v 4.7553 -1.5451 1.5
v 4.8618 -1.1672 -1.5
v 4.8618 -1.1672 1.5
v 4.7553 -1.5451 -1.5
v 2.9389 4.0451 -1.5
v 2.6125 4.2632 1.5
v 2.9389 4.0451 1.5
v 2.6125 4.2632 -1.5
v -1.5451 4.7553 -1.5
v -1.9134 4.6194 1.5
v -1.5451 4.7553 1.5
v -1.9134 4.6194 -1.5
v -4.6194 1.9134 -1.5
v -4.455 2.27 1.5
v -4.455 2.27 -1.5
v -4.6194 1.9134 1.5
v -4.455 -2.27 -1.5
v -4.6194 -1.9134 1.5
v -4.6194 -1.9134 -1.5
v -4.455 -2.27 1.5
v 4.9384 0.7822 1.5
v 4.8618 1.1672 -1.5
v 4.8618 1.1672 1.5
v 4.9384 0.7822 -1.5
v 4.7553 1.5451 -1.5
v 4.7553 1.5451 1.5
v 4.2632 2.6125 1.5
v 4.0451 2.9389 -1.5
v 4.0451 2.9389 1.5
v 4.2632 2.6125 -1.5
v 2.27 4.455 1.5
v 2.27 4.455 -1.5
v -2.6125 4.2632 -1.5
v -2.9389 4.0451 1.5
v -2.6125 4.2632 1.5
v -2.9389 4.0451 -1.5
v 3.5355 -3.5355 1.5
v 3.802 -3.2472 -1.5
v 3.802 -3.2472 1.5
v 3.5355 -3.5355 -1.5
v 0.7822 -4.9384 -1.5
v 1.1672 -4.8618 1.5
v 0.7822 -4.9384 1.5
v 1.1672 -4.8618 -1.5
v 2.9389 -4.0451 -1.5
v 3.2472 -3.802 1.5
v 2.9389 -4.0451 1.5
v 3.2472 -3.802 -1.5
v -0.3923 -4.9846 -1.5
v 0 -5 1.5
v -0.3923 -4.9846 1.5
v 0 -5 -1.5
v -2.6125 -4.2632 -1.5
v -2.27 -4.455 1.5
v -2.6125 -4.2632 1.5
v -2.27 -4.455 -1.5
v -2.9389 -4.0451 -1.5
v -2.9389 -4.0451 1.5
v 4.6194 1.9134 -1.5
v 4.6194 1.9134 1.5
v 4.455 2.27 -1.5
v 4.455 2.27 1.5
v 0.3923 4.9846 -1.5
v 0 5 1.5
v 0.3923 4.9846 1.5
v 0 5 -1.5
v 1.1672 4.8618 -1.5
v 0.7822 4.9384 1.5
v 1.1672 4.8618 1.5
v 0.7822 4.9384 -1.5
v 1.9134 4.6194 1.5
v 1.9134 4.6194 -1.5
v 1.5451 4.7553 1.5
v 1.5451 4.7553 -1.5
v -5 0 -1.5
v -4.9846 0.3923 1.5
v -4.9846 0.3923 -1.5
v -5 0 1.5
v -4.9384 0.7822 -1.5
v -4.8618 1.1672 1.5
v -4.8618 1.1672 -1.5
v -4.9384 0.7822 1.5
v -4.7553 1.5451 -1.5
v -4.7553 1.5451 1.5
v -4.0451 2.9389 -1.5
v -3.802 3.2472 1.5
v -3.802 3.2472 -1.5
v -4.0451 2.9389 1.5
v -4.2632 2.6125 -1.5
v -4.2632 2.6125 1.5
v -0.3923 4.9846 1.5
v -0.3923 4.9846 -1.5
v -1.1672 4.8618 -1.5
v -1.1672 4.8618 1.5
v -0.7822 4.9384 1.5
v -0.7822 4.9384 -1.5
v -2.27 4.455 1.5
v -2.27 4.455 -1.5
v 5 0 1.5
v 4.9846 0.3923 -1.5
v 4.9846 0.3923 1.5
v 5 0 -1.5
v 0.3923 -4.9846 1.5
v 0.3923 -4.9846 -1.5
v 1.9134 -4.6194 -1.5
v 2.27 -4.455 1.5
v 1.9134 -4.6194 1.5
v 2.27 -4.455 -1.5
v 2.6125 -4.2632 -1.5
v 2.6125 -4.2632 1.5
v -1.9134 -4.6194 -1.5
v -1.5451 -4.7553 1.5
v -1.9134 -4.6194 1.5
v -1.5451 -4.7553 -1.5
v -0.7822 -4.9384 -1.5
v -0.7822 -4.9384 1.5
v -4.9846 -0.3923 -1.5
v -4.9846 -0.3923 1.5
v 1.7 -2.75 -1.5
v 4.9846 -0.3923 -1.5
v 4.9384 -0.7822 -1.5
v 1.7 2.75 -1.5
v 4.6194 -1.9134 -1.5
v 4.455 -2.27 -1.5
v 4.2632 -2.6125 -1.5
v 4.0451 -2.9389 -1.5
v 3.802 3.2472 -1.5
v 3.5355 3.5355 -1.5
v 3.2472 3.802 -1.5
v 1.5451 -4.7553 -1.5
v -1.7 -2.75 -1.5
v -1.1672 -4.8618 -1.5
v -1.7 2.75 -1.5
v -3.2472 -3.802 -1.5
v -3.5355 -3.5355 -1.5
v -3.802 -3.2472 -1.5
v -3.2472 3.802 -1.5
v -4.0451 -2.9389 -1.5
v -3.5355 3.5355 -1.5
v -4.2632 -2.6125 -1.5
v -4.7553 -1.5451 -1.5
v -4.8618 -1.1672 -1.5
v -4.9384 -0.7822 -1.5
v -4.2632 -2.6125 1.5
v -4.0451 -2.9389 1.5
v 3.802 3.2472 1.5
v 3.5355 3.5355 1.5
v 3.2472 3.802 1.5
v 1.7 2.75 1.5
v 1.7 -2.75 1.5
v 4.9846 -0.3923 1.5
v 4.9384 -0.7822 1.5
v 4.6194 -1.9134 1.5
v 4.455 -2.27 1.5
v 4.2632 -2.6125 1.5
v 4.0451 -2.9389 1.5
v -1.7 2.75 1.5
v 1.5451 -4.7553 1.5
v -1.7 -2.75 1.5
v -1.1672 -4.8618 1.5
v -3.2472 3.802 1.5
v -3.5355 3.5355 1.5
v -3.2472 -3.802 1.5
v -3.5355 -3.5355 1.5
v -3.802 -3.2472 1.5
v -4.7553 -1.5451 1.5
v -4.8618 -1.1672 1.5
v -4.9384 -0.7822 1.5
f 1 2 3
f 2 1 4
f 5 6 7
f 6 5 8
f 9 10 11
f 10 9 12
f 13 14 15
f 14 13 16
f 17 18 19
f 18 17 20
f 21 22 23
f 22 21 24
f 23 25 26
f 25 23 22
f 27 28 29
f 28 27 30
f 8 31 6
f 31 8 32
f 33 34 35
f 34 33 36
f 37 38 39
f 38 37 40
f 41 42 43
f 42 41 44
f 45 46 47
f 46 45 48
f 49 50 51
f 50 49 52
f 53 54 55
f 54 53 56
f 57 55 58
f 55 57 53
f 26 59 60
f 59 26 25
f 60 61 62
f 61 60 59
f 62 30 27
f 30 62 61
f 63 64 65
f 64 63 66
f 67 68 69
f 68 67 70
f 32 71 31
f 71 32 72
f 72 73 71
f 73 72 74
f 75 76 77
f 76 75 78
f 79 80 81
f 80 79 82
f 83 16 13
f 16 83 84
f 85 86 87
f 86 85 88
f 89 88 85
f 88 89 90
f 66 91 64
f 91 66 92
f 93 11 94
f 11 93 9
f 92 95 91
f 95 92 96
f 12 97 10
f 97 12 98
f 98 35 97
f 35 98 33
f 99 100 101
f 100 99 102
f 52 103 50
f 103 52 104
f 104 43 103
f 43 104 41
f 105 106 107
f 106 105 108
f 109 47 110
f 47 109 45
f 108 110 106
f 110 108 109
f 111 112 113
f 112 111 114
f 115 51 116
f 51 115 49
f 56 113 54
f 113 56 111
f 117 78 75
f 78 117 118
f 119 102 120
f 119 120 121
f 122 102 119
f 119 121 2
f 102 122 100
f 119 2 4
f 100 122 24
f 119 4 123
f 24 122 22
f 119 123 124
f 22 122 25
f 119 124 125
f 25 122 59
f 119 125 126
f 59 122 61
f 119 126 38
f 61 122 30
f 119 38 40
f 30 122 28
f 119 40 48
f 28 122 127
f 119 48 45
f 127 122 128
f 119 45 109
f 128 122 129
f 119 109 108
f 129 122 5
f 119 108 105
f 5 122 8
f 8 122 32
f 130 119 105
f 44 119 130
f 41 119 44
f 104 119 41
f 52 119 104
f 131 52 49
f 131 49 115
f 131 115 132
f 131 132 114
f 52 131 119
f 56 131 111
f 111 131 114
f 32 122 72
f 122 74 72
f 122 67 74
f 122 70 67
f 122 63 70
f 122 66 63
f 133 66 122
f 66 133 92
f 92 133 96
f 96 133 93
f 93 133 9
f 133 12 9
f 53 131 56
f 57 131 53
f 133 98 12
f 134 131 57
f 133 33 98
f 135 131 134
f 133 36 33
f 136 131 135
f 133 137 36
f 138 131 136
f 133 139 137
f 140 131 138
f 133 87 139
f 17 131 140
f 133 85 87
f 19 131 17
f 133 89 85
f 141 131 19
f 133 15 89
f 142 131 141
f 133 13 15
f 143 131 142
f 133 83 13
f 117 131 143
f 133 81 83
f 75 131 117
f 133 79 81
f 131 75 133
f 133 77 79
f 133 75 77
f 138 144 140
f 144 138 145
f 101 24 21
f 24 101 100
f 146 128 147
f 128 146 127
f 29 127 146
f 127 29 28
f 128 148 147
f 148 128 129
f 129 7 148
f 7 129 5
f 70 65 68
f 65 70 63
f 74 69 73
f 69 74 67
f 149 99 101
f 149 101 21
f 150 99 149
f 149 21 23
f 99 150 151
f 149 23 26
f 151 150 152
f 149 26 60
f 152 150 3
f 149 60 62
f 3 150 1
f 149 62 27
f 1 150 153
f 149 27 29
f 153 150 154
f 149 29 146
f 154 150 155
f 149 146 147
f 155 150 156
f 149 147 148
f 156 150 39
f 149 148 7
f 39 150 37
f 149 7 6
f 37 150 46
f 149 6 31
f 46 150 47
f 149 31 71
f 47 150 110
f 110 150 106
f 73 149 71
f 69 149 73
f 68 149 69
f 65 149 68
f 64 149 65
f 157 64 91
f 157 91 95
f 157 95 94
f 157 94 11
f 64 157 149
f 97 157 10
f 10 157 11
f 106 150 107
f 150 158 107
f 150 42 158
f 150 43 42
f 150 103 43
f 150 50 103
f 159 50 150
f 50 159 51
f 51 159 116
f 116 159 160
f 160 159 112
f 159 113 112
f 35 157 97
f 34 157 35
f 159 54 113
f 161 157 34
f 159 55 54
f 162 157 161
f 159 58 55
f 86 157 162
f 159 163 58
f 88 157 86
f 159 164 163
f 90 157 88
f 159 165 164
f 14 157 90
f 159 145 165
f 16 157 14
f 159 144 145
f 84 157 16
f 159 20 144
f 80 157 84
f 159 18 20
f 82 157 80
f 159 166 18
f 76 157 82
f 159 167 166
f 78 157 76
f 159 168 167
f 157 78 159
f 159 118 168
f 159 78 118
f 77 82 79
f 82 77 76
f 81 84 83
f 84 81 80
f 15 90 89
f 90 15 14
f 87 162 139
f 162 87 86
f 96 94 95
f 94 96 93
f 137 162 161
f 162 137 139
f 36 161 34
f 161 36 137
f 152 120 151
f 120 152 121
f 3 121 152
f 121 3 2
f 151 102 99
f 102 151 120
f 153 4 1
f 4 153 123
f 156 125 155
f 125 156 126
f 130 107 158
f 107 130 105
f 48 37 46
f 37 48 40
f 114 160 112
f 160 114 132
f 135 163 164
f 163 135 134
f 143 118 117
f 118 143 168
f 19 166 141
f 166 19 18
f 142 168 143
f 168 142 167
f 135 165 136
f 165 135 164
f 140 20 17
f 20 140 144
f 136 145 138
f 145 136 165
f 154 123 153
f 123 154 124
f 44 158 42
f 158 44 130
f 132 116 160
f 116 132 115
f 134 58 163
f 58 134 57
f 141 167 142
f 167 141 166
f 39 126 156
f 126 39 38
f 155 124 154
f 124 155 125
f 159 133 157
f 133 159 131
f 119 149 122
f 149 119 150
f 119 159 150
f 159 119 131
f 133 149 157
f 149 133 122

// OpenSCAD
 
 $fn=80; 
  difference() {      
cylinder(h = 3, r1 = 5, r2 = 5, center = true);   
   
   cube(size = [3.4,5.5,10], center = true);  
 }
